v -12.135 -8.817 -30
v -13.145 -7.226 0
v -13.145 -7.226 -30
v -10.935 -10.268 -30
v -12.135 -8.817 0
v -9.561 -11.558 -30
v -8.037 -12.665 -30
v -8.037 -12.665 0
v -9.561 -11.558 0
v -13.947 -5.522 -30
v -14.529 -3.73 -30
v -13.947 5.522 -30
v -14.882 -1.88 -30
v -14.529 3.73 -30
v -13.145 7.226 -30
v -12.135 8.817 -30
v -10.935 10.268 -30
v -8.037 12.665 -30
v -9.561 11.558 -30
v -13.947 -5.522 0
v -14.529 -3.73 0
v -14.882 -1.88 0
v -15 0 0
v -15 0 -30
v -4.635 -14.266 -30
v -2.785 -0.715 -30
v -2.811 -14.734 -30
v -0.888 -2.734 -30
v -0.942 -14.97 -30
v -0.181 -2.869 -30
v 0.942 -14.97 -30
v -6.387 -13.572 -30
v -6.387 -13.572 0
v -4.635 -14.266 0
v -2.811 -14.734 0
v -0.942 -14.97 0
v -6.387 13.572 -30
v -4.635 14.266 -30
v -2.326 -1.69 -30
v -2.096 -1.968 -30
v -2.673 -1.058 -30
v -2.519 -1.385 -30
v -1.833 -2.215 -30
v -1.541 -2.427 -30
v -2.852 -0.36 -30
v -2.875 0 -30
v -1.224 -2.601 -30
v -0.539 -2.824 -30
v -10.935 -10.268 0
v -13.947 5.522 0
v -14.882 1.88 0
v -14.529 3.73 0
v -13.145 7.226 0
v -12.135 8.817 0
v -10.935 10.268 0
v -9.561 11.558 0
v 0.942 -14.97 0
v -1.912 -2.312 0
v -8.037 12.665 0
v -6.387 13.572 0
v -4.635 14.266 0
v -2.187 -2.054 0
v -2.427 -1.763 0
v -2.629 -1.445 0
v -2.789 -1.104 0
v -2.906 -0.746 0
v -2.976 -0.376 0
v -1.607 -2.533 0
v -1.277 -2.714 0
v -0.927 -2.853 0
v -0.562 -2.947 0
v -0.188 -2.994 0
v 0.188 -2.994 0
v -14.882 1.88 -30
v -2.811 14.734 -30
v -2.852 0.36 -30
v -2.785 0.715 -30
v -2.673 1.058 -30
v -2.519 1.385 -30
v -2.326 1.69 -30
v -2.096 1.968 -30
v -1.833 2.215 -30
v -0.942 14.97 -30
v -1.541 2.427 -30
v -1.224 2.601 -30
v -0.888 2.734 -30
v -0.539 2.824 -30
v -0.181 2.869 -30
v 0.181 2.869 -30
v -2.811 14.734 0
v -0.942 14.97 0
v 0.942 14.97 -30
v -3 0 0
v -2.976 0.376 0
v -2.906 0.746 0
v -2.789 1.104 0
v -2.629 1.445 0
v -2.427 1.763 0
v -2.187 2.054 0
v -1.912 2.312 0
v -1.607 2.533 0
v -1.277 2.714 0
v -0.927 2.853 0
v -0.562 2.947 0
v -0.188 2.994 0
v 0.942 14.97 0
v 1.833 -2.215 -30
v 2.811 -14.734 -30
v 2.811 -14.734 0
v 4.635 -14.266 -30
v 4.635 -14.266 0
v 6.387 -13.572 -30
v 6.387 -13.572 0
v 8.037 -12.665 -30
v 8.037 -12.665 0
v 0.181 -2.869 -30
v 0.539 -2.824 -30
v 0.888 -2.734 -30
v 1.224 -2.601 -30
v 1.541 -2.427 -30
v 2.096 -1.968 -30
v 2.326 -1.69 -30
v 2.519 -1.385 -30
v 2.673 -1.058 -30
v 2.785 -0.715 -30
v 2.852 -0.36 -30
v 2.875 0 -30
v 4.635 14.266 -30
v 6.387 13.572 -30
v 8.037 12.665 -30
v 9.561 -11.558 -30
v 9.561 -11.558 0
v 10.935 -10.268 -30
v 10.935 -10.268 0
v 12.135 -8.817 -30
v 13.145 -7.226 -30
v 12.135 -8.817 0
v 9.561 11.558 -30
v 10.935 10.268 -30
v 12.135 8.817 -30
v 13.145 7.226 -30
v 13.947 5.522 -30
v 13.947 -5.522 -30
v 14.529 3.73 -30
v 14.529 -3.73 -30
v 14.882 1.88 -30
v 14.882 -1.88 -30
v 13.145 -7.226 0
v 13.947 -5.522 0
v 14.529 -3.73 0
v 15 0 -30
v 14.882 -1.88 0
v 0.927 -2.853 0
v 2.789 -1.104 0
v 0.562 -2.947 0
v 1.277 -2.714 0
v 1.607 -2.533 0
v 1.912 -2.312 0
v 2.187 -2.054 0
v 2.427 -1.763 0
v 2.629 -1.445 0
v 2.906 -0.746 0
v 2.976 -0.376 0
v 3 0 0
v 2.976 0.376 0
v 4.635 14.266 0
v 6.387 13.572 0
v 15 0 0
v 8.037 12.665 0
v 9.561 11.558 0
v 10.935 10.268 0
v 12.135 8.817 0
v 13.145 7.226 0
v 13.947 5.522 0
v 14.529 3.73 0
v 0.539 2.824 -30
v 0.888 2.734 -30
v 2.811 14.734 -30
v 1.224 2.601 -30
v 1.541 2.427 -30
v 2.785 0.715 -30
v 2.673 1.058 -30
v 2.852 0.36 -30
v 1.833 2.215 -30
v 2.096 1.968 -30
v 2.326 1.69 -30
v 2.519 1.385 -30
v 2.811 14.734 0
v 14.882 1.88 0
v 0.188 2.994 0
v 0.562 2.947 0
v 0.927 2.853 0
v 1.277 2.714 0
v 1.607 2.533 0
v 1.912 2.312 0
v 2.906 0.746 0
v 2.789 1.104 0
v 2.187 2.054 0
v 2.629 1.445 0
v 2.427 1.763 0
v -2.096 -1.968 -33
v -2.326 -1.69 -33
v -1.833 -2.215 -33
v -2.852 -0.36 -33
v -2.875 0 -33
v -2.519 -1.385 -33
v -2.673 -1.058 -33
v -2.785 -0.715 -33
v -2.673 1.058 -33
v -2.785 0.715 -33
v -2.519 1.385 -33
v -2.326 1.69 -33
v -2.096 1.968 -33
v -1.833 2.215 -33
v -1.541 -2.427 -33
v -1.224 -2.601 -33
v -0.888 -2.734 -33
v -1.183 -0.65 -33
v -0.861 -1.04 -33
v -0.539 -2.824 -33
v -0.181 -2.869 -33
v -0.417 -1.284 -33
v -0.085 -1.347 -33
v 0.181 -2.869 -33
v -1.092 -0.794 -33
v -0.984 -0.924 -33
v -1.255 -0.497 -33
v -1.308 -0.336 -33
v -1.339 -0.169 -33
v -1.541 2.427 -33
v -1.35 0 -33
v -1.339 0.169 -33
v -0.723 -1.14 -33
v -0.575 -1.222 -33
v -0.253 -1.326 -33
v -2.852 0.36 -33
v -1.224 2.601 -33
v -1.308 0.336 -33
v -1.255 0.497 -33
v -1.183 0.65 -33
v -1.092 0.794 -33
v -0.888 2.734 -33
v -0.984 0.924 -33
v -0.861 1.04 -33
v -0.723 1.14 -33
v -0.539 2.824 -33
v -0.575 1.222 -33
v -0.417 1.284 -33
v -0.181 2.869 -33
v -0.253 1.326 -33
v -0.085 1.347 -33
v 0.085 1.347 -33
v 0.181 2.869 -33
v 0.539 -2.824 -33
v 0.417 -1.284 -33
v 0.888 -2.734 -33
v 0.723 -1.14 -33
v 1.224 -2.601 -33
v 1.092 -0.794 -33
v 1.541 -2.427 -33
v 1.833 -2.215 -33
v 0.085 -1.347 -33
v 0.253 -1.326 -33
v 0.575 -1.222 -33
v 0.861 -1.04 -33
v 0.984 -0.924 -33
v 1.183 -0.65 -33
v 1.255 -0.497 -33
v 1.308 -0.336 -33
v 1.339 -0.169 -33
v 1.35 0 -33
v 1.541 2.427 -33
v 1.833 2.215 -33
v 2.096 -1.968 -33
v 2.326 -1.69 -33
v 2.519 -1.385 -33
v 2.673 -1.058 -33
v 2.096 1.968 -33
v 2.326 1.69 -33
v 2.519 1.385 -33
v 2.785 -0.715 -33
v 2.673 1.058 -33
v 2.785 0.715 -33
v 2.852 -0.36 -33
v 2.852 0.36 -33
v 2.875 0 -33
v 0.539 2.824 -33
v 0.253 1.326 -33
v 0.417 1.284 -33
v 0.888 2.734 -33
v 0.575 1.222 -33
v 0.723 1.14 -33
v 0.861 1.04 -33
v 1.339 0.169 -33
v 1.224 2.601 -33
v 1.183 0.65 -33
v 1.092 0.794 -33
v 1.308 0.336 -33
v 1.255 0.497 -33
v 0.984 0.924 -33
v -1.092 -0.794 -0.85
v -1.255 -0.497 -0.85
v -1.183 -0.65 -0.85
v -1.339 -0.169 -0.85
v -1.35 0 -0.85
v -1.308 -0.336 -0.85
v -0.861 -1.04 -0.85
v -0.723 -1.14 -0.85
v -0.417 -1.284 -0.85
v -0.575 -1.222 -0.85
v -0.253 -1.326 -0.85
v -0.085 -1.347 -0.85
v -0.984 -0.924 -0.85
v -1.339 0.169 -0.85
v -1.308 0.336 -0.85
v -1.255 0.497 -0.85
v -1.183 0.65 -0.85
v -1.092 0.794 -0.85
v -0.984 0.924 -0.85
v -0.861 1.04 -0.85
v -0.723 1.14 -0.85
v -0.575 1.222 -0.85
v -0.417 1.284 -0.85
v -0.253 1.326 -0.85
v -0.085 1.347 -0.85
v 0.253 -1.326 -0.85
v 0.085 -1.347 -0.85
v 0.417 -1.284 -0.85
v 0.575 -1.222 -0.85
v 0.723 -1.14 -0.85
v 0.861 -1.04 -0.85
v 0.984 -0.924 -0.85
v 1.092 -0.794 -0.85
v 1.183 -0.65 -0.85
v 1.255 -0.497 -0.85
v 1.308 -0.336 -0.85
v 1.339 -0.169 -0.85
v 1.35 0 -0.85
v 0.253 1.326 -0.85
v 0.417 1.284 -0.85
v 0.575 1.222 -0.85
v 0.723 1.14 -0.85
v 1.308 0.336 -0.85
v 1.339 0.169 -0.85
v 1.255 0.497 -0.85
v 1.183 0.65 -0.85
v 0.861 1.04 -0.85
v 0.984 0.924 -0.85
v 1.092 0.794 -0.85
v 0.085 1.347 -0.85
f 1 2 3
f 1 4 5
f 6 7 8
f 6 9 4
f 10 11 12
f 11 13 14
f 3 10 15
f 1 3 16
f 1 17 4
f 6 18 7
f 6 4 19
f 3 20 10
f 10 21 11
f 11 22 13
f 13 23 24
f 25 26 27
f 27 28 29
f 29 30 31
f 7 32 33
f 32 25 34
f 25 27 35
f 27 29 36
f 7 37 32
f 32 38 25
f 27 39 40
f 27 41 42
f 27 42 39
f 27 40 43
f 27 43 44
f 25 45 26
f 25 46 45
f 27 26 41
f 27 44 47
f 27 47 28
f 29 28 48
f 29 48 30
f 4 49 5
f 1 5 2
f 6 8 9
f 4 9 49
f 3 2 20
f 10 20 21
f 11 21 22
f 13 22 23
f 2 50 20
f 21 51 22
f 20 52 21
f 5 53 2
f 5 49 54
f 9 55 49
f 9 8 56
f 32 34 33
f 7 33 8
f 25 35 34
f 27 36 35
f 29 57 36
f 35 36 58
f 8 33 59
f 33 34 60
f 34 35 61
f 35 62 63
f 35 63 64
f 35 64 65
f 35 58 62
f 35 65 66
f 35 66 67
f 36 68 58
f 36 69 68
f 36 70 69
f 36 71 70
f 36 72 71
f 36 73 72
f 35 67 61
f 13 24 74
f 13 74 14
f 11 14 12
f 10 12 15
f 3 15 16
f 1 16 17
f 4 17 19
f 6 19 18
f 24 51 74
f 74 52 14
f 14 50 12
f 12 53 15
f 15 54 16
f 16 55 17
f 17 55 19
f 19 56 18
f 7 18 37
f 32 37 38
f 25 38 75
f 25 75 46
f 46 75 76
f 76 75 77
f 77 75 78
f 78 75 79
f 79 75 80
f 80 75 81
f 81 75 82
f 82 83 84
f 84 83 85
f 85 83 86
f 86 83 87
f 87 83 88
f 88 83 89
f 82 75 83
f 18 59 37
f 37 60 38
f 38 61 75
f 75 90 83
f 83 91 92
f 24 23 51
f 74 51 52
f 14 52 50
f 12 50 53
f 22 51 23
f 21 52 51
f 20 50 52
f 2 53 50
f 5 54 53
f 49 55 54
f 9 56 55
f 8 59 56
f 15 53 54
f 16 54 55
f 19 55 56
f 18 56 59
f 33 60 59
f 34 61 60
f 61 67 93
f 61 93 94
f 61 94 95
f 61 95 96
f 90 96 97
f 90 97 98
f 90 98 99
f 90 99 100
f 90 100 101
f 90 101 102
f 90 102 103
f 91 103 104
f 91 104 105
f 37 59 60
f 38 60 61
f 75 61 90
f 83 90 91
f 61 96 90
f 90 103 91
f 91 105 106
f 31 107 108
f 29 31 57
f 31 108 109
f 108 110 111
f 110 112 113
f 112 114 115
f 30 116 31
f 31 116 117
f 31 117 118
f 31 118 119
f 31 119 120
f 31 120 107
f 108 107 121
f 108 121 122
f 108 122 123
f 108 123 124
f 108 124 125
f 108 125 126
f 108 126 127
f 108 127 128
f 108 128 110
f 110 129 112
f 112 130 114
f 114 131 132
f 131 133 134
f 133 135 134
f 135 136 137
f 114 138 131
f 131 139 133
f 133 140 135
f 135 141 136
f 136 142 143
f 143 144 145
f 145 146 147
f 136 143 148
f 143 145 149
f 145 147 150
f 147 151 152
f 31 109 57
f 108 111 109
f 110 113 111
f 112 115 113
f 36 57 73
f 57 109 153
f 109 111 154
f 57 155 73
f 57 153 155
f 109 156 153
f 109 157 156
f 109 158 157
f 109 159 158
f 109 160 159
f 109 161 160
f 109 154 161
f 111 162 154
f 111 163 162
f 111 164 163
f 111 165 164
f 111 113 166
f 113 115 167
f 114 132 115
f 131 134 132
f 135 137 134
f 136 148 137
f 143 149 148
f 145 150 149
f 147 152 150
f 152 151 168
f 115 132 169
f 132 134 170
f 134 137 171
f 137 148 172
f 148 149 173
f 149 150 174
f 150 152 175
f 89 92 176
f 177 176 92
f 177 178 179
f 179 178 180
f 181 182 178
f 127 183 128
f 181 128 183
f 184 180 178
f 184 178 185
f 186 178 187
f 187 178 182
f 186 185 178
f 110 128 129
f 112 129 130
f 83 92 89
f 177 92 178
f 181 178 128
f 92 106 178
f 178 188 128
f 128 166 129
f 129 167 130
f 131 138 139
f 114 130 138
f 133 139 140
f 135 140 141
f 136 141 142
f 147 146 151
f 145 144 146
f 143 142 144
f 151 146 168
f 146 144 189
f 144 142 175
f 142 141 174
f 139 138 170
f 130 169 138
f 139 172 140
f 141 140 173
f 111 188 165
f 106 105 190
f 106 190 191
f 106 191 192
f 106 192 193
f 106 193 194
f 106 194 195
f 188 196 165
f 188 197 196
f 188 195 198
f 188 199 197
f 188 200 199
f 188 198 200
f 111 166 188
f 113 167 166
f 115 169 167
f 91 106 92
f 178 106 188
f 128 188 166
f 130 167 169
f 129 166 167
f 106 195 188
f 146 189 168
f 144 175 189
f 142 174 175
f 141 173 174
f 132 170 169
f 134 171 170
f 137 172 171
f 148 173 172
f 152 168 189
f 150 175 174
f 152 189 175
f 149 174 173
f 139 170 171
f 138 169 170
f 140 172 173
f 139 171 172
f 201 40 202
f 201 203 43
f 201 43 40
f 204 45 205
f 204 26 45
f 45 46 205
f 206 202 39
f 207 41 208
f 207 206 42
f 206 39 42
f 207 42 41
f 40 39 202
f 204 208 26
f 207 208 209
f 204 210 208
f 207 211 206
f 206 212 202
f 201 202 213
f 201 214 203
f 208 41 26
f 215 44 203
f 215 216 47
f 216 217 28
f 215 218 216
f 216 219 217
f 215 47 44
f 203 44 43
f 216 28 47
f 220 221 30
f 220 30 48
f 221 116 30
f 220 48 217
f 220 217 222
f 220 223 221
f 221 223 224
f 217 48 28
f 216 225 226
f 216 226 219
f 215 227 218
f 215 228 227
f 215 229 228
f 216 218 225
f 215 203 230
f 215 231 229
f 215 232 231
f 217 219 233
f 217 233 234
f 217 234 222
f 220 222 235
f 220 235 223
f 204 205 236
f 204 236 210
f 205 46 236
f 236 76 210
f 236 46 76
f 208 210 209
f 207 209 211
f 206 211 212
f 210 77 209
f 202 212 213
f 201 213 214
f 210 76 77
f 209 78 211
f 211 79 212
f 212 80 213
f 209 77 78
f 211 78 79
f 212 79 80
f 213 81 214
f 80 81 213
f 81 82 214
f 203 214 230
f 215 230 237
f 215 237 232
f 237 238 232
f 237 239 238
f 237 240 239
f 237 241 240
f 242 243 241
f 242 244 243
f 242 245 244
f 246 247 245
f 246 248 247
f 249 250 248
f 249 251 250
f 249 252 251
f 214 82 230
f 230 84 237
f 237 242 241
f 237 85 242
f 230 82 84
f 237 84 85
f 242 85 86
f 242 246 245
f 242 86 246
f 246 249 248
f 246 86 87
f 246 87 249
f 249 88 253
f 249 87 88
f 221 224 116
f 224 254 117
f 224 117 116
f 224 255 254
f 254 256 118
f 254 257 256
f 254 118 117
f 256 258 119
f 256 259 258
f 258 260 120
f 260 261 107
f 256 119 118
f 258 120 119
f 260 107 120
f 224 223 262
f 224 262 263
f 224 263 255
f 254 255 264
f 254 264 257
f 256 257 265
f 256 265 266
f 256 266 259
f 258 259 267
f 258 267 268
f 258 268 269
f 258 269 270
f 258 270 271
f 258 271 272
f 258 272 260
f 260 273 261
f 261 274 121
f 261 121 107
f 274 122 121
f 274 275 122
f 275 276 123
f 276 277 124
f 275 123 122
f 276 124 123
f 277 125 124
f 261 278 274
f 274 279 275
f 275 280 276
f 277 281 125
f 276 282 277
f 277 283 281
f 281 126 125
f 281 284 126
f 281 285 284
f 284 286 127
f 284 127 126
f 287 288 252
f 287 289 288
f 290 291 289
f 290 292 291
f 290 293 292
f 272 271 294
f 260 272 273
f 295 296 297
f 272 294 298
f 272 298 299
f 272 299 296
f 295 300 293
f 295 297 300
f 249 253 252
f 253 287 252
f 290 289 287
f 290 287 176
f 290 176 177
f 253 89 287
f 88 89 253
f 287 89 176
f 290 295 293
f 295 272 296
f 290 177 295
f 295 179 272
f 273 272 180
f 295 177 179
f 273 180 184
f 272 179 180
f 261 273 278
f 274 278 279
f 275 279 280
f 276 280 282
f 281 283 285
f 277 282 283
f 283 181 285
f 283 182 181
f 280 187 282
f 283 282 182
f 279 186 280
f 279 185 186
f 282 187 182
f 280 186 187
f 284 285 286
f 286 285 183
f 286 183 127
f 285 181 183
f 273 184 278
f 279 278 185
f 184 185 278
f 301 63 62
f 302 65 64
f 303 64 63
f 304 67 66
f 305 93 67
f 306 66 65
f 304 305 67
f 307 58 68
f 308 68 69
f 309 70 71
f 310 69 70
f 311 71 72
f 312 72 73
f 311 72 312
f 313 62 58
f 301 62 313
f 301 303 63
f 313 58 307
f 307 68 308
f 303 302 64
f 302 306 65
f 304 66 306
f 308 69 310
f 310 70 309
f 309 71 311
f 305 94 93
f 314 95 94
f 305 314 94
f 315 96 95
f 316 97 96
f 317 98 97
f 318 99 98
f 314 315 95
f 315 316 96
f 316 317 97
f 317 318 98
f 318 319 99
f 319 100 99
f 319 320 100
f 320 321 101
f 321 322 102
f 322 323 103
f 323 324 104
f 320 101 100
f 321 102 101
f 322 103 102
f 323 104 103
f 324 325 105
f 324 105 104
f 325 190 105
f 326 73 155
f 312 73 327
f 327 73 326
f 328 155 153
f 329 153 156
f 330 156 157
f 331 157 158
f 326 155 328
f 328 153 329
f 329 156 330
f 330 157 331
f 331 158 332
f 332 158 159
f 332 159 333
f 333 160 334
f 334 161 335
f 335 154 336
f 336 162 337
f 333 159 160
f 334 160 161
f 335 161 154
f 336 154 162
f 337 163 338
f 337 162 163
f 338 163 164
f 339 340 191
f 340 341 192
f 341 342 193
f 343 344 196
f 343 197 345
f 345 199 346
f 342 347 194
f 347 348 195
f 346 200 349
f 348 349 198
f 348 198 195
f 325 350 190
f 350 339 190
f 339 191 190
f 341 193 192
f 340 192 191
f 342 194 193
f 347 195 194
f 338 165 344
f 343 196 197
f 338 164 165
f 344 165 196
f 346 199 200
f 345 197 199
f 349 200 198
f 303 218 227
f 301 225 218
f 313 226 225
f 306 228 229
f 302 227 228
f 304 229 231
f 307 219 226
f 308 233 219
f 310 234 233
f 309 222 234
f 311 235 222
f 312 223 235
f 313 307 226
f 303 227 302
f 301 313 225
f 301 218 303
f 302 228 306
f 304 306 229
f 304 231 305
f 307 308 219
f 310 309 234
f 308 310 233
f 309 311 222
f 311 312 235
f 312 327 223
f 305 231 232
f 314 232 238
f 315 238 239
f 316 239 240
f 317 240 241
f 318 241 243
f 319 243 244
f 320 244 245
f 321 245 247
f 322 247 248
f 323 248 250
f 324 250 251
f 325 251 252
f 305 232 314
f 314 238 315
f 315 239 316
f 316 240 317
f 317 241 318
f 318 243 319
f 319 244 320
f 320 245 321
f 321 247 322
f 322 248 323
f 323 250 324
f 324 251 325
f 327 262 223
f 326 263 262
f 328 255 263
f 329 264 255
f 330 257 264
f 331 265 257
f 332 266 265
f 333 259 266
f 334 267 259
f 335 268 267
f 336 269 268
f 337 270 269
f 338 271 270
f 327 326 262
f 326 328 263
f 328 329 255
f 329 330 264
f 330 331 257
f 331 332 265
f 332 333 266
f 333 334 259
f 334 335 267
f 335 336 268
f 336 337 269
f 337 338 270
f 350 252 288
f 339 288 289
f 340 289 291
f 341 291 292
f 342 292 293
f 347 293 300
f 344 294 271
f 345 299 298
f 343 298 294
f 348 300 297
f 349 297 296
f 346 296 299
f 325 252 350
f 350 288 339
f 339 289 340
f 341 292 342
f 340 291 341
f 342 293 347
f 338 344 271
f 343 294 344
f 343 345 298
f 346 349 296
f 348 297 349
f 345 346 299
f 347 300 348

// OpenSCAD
$fn = 50;

difference() {
	union() {
		translate(v = [0, 0, -30.0]) {
			cylinder(h = 30, r = 15.0);
		}
		#translate(v = [0, 0, -33.0]) {
			cylinder(h = 33, r = 2.875);
		}
	}
	union() {
		translate(v = [0, 0, 0]) {
			rotate(a = [0, 0, 0]) {
				difference() {
					union() {
						translate(v = [0, 0, -33.0]) {
							cylinder(h = 33, r = 1.0);
						}
						translate(v = [0, 0, -0.85]) {
							cylinder(h = 0.85, r1 = 1.35, r2 = 3.0);
						}
						translate(v = [0, 0, -33.0]) {
							cylinder(h = 33, r = 1.35);
						}
						translate(v = [0, 0, -33.0]) {
							cylinder(h = 33, r = 1.0);
						}
					}
					union();
				}
			}
		}
	}
}
